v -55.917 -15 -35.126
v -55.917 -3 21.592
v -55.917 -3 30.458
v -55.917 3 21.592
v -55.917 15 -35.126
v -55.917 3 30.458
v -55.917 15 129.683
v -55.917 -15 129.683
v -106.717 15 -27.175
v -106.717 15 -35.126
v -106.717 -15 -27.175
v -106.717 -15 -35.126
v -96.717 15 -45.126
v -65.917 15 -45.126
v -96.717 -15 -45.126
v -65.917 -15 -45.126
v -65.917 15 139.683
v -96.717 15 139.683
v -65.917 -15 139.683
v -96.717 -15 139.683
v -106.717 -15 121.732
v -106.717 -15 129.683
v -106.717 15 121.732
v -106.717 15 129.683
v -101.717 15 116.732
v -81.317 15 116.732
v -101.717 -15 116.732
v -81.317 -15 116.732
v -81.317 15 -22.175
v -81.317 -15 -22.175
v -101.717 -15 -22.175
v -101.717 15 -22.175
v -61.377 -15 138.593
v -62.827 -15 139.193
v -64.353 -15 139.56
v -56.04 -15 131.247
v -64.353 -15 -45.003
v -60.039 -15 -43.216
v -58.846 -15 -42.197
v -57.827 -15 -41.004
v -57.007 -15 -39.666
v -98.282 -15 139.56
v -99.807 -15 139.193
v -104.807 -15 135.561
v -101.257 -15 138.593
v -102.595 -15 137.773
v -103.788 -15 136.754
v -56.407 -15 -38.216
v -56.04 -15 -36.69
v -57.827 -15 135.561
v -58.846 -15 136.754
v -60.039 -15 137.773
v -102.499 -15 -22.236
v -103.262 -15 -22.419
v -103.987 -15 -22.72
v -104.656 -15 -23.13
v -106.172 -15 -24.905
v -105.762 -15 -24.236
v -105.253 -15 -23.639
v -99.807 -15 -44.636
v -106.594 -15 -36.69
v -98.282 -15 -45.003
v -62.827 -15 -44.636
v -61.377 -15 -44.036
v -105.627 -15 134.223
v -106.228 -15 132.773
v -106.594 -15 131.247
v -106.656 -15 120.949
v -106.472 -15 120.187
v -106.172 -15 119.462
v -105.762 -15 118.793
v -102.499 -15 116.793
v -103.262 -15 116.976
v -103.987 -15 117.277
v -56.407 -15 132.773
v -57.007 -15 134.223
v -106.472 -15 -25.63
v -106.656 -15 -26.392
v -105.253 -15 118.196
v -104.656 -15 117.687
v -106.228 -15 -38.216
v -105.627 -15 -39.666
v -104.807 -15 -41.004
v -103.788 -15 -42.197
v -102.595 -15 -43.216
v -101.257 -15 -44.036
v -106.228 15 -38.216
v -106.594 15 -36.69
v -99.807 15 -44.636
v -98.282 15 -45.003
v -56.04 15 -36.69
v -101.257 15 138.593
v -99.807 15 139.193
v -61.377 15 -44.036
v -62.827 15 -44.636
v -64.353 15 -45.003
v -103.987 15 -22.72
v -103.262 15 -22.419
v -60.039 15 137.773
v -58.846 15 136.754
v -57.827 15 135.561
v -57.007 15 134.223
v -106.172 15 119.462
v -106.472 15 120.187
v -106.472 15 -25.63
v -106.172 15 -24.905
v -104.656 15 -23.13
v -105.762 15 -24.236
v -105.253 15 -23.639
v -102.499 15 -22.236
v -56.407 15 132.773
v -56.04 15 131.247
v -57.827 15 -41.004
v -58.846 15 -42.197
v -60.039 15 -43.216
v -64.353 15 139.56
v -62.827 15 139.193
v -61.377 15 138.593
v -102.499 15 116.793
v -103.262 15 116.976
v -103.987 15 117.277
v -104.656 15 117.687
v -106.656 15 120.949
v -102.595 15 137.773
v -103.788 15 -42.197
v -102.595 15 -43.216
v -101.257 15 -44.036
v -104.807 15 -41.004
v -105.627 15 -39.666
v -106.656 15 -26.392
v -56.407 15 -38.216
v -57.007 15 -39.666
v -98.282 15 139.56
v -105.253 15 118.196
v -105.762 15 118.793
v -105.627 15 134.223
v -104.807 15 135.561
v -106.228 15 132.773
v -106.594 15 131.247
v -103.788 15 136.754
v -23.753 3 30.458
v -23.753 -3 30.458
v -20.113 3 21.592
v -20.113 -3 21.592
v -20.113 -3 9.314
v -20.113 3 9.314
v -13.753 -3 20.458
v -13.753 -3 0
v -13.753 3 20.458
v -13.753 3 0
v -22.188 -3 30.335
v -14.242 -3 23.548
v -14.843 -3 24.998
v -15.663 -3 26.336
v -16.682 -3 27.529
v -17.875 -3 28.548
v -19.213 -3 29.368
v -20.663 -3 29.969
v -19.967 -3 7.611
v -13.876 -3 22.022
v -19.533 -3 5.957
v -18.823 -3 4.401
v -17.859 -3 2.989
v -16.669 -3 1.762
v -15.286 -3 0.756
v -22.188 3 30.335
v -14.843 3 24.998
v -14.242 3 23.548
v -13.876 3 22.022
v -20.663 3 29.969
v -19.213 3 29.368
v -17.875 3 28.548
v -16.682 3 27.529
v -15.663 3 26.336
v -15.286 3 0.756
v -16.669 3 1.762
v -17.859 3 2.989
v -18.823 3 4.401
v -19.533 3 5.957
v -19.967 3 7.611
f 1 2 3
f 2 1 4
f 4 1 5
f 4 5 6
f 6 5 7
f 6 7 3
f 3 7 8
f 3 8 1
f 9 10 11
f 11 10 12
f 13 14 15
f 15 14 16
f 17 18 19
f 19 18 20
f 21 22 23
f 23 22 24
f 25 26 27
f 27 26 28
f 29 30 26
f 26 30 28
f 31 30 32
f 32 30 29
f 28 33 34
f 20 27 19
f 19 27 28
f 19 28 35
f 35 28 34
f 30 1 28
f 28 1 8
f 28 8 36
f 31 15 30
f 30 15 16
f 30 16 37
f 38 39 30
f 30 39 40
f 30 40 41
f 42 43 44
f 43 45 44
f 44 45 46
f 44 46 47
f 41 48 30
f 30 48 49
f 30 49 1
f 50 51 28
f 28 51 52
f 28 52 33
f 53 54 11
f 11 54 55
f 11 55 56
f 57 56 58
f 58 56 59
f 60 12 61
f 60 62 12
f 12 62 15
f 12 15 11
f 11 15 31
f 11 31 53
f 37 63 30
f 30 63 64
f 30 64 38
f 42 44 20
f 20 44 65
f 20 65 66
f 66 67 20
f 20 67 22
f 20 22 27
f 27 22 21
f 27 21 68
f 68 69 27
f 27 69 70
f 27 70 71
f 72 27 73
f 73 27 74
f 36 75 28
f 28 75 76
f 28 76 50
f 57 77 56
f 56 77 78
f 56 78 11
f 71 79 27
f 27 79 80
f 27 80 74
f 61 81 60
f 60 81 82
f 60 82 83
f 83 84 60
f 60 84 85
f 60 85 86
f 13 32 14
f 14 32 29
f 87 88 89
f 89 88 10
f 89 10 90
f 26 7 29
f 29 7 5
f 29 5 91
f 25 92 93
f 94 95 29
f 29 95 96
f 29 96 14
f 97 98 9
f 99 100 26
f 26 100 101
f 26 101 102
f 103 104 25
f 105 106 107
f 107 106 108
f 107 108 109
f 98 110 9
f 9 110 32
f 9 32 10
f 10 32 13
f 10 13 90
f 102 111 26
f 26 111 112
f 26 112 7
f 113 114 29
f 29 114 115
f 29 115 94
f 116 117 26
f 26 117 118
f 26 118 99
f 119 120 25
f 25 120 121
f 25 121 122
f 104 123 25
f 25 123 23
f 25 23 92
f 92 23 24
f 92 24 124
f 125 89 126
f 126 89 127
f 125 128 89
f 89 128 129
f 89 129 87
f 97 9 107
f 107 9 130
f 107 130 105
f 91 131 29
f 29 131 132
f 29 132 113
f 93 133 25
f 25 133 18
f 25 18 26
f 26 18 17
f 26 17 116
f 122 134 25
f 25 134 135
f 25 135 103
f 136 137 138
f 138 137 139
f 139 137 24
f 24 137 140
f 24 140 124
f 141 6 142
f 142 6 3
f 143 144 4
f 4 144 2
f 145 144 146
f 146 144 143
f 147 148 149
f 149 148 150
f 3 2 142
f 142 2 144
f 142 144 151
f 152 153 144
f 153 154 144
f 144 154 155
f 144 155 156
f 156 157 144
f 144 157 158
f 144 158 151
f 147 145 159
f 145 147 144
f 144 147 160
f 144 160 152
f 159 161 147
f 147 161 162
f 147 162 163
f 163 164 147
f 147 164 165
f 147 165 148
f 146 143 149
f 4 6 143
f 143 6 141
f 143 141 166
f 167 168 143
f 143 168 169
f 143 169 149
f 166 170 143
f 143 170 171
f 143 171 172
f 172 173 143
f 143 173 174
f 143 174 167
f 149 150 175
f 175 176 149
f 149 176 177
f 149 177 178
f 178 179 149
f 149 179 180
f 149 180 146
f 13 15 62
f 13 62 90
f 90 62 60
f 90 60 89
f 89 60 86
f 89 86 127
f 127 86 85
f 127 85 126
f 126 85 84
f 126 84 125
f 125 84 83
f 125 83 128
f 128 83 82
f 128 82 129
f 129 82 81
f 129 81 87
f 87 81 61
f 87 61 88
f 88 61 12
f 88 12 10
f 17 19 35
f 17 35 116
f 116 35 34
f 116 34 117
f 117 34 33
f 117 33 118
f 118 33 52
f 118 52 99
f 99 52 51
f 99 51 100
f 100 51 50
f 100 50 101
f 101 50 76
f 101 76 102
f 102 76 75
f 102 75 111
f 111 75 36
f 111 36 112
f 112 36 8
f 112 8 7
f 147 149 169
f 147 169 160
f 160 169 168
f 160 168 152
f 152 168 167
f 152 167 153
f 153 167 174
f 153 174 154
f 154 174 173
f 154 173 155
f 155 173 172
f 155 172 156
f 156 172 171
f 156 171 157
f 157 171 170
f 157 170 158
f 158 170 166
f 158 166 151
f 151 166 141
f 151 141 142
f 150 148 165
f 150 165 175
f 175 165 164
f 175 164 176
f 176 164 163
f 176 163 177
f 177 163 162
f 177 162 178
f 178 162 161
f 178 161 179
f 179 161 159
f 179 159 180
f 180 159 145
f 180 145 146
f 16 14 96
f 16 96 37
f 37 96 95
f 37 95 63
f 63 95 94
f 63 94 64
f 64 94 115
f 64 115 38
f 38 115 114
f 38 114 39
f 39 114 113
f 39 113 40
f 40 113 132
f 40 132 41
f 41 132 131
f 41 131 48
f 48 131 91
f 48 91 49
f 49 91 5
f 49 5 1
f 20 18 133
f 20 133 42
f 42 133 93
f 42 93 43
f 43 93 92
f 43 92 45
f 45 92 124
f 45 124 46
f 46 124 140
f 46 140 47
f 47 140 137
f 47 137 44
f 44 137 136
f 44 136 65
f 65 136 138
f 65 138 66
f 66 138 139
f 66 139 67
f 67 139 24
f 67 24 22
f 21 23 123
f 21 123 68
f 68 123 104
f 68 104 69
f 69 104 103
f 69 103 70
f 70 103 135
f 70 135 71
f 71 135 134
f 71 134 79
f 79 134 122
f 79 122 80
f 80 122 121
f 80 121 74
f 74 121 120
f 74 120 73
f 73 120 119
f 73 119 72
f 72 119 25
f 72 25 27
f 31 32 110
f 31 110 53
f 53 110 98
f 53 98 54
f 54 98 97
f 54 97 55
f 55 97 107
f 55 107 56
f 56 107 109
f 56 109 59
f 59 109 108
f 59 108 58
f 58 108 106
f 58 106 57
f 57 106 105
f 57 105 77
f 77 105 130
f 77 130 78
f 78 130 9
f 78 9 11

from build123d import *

# Parameters (mm, degrees)
BOSS_EXTRUDE1_DEPTH      = 15
BOSS_EXTRUDE1_DEPTH_BACK = 15
BOSS_EXTRUDE2_DEPTH      = 3
BOSS_EXTRUDE2_DEPTH_BACK = 3
FILLET1_R                = 10
FILLET2_R                = 5


with BuildPart() as part:
    # Sketch1 → Boss-Extrude1 (new, two sides: drawn at the far end of the back side and taken through both)
    with BuildSketch(Plane(origin=(0, 0, 0), x_dir=(1, 0, 0), z_dir=(0, 1, 0)).offset(-BOSS_EXTRUDE1_DEPTH_BACK)):
        Polygon((-106.717200023, 22.174603175), (-106.717200023, 45.125781111), (-55.917200023, 45.125781111), (-55.917200023, -139.682824762), (-106.717200023, -139.682824762), (-106.717200023, -116.731646825), (-81.317200023, -116.731646825), (-81.317200023, 22.174603175), align=None)
    extrude(amount=BOSS_EXTRUDE1_DEPTH + BOSS_EXTRUDE1_DEPTH_BACK)

    # Sketch1<3> → Boss-Extrude2 (add, two sides: drawn at the far end of the back side and taken through both)
    with BuildSketch(Plane(origin=(0, 0, 0), x_dir=(1, 0, 0), z_dir=(0, 1, 0)).offset(-BOSS_EXTRUDE2_DEPTH_BACK)):
        Polygon((-55.917200023, -21.59149981), (-55.917200023, -30.457986667), (-13.752700087, -30.457986667), (-13.752700087, 0), (-20.113440658, 0), (-20.113440658, -21.59149981), align=None)
    extrude(amount=BOSS_EXTRUDE2_DEPTH + BOSS_EXTRUDE2_DEPTH_BACK)

    # Fillet1
    # the kernel refuses this fillet: 10 mm, written as the material it takes off along each edge
    with BuildSketch(Plane(origin=(-106.717200023, 40, -45.125781111), x_dir=(0, 0, 1), z_dir=(0, -1, 0)), Plane(origin=(-55.917200023, 40, 139.682824762), x_dir=(0, 0, -1), z_dir=(0, -1, 0)), Plane(origin=(-55.917200023, 40, -45.125781111), x_dir=(-1, 0, 0), z_dir=(0, -1, 0)), Plane(origin=(-106.717200023, 40, 139.682824762), x_dir=(1, 0, 0), z_dir=(0, -1, 0))) as fillet1_piece_1:
        with BuildLine():
            CenterArc((FILLET1_R, -FILLET1_R), FILLET1_R, 90, 90)
            Line((0, -FILLET1_R), (-FILLET1_R * 0.02, -FILLET1_R))
            Line((-FILLET1_R * 0.02, -FILLET1_R), (-FILLET1_R * 0.02, FILLET1_R * 0.02))
            Line((-FILLET1_R * 0.02, FILLET1_R * 0.02), (FILLET1_R, FILLET1_R * 0.02))
            Line((FILLET1_R, FILLET1_R * 0.02), (FILLET1_R, 0))
        make_face()
    extrude(amount=80, mode=Mode.SUBTRACT)
    with BuildSketch(Plane(origin=(-13.752700087, -28, 30.457986667), x_dir=(-1, 0, 0), z_dir=(0, 1, 0))) as fillet1_piece_2:
        with BuildLine():
            CenterArc((FILLET1_R, -FILLET1_R), FILLET1_R, 90, 90)
            Line((0, -FILLET1_R), (-FILLET1_R * 0.02, -FILLET1_R))
            Line((-FILLET1_R * 0.02, -FILLET1_R), (-FILLET1_R * 0.02, FILLET1_R * 0.02))
            Line((-FILLET1_R * 0.02, FILLET1_R * 0.02), (FILLET1_R, FILLET1_R * 0.02))
            Line((FILLET1_R, FILLET1_R * 0.02), (FILLET1_R, 0))
        make_face()
    extrude(amount=56, mode=Mode.SUBTRACT)
    with BuildSketch(Plane(origin=(-20.113440658, 26.285697167, 0), x_dir=(1, 0, 0), z_dir=(0, -1, 0))) as fillet1_piece_3:
        with BuildLine():
            CenterArc((10, 9.314278867), FILLET1_R, 180, 68.658501665)
            Line((0, 9.314278867), (-0.2, 9.314278867))
            Line((-0.2, 9.314278867), (-0.2, 0))
            Line((-0.2, 0), (0, -0.2))
            ThreePointArc((0, -0.2), (3.180370286, -0.2), (6.287955383, -0.186285577))
            Line((6.287955383, -0.186285577), (6.360740571, 0))
        make_face()
    extrude(amount=52.571394335, mode=Mode.SUBTRACT)

    # Fillet2
    fillet2_edges = [part.edges().sort_by_distance(p)[0] for p in [
        (-106.717200023, 0, 116.731646825),
        (-106.717200023, 0, -22.174603175),
    ]]
    fillet(fillet2_edges, radius=FILLET2_R)


solid = part.part
